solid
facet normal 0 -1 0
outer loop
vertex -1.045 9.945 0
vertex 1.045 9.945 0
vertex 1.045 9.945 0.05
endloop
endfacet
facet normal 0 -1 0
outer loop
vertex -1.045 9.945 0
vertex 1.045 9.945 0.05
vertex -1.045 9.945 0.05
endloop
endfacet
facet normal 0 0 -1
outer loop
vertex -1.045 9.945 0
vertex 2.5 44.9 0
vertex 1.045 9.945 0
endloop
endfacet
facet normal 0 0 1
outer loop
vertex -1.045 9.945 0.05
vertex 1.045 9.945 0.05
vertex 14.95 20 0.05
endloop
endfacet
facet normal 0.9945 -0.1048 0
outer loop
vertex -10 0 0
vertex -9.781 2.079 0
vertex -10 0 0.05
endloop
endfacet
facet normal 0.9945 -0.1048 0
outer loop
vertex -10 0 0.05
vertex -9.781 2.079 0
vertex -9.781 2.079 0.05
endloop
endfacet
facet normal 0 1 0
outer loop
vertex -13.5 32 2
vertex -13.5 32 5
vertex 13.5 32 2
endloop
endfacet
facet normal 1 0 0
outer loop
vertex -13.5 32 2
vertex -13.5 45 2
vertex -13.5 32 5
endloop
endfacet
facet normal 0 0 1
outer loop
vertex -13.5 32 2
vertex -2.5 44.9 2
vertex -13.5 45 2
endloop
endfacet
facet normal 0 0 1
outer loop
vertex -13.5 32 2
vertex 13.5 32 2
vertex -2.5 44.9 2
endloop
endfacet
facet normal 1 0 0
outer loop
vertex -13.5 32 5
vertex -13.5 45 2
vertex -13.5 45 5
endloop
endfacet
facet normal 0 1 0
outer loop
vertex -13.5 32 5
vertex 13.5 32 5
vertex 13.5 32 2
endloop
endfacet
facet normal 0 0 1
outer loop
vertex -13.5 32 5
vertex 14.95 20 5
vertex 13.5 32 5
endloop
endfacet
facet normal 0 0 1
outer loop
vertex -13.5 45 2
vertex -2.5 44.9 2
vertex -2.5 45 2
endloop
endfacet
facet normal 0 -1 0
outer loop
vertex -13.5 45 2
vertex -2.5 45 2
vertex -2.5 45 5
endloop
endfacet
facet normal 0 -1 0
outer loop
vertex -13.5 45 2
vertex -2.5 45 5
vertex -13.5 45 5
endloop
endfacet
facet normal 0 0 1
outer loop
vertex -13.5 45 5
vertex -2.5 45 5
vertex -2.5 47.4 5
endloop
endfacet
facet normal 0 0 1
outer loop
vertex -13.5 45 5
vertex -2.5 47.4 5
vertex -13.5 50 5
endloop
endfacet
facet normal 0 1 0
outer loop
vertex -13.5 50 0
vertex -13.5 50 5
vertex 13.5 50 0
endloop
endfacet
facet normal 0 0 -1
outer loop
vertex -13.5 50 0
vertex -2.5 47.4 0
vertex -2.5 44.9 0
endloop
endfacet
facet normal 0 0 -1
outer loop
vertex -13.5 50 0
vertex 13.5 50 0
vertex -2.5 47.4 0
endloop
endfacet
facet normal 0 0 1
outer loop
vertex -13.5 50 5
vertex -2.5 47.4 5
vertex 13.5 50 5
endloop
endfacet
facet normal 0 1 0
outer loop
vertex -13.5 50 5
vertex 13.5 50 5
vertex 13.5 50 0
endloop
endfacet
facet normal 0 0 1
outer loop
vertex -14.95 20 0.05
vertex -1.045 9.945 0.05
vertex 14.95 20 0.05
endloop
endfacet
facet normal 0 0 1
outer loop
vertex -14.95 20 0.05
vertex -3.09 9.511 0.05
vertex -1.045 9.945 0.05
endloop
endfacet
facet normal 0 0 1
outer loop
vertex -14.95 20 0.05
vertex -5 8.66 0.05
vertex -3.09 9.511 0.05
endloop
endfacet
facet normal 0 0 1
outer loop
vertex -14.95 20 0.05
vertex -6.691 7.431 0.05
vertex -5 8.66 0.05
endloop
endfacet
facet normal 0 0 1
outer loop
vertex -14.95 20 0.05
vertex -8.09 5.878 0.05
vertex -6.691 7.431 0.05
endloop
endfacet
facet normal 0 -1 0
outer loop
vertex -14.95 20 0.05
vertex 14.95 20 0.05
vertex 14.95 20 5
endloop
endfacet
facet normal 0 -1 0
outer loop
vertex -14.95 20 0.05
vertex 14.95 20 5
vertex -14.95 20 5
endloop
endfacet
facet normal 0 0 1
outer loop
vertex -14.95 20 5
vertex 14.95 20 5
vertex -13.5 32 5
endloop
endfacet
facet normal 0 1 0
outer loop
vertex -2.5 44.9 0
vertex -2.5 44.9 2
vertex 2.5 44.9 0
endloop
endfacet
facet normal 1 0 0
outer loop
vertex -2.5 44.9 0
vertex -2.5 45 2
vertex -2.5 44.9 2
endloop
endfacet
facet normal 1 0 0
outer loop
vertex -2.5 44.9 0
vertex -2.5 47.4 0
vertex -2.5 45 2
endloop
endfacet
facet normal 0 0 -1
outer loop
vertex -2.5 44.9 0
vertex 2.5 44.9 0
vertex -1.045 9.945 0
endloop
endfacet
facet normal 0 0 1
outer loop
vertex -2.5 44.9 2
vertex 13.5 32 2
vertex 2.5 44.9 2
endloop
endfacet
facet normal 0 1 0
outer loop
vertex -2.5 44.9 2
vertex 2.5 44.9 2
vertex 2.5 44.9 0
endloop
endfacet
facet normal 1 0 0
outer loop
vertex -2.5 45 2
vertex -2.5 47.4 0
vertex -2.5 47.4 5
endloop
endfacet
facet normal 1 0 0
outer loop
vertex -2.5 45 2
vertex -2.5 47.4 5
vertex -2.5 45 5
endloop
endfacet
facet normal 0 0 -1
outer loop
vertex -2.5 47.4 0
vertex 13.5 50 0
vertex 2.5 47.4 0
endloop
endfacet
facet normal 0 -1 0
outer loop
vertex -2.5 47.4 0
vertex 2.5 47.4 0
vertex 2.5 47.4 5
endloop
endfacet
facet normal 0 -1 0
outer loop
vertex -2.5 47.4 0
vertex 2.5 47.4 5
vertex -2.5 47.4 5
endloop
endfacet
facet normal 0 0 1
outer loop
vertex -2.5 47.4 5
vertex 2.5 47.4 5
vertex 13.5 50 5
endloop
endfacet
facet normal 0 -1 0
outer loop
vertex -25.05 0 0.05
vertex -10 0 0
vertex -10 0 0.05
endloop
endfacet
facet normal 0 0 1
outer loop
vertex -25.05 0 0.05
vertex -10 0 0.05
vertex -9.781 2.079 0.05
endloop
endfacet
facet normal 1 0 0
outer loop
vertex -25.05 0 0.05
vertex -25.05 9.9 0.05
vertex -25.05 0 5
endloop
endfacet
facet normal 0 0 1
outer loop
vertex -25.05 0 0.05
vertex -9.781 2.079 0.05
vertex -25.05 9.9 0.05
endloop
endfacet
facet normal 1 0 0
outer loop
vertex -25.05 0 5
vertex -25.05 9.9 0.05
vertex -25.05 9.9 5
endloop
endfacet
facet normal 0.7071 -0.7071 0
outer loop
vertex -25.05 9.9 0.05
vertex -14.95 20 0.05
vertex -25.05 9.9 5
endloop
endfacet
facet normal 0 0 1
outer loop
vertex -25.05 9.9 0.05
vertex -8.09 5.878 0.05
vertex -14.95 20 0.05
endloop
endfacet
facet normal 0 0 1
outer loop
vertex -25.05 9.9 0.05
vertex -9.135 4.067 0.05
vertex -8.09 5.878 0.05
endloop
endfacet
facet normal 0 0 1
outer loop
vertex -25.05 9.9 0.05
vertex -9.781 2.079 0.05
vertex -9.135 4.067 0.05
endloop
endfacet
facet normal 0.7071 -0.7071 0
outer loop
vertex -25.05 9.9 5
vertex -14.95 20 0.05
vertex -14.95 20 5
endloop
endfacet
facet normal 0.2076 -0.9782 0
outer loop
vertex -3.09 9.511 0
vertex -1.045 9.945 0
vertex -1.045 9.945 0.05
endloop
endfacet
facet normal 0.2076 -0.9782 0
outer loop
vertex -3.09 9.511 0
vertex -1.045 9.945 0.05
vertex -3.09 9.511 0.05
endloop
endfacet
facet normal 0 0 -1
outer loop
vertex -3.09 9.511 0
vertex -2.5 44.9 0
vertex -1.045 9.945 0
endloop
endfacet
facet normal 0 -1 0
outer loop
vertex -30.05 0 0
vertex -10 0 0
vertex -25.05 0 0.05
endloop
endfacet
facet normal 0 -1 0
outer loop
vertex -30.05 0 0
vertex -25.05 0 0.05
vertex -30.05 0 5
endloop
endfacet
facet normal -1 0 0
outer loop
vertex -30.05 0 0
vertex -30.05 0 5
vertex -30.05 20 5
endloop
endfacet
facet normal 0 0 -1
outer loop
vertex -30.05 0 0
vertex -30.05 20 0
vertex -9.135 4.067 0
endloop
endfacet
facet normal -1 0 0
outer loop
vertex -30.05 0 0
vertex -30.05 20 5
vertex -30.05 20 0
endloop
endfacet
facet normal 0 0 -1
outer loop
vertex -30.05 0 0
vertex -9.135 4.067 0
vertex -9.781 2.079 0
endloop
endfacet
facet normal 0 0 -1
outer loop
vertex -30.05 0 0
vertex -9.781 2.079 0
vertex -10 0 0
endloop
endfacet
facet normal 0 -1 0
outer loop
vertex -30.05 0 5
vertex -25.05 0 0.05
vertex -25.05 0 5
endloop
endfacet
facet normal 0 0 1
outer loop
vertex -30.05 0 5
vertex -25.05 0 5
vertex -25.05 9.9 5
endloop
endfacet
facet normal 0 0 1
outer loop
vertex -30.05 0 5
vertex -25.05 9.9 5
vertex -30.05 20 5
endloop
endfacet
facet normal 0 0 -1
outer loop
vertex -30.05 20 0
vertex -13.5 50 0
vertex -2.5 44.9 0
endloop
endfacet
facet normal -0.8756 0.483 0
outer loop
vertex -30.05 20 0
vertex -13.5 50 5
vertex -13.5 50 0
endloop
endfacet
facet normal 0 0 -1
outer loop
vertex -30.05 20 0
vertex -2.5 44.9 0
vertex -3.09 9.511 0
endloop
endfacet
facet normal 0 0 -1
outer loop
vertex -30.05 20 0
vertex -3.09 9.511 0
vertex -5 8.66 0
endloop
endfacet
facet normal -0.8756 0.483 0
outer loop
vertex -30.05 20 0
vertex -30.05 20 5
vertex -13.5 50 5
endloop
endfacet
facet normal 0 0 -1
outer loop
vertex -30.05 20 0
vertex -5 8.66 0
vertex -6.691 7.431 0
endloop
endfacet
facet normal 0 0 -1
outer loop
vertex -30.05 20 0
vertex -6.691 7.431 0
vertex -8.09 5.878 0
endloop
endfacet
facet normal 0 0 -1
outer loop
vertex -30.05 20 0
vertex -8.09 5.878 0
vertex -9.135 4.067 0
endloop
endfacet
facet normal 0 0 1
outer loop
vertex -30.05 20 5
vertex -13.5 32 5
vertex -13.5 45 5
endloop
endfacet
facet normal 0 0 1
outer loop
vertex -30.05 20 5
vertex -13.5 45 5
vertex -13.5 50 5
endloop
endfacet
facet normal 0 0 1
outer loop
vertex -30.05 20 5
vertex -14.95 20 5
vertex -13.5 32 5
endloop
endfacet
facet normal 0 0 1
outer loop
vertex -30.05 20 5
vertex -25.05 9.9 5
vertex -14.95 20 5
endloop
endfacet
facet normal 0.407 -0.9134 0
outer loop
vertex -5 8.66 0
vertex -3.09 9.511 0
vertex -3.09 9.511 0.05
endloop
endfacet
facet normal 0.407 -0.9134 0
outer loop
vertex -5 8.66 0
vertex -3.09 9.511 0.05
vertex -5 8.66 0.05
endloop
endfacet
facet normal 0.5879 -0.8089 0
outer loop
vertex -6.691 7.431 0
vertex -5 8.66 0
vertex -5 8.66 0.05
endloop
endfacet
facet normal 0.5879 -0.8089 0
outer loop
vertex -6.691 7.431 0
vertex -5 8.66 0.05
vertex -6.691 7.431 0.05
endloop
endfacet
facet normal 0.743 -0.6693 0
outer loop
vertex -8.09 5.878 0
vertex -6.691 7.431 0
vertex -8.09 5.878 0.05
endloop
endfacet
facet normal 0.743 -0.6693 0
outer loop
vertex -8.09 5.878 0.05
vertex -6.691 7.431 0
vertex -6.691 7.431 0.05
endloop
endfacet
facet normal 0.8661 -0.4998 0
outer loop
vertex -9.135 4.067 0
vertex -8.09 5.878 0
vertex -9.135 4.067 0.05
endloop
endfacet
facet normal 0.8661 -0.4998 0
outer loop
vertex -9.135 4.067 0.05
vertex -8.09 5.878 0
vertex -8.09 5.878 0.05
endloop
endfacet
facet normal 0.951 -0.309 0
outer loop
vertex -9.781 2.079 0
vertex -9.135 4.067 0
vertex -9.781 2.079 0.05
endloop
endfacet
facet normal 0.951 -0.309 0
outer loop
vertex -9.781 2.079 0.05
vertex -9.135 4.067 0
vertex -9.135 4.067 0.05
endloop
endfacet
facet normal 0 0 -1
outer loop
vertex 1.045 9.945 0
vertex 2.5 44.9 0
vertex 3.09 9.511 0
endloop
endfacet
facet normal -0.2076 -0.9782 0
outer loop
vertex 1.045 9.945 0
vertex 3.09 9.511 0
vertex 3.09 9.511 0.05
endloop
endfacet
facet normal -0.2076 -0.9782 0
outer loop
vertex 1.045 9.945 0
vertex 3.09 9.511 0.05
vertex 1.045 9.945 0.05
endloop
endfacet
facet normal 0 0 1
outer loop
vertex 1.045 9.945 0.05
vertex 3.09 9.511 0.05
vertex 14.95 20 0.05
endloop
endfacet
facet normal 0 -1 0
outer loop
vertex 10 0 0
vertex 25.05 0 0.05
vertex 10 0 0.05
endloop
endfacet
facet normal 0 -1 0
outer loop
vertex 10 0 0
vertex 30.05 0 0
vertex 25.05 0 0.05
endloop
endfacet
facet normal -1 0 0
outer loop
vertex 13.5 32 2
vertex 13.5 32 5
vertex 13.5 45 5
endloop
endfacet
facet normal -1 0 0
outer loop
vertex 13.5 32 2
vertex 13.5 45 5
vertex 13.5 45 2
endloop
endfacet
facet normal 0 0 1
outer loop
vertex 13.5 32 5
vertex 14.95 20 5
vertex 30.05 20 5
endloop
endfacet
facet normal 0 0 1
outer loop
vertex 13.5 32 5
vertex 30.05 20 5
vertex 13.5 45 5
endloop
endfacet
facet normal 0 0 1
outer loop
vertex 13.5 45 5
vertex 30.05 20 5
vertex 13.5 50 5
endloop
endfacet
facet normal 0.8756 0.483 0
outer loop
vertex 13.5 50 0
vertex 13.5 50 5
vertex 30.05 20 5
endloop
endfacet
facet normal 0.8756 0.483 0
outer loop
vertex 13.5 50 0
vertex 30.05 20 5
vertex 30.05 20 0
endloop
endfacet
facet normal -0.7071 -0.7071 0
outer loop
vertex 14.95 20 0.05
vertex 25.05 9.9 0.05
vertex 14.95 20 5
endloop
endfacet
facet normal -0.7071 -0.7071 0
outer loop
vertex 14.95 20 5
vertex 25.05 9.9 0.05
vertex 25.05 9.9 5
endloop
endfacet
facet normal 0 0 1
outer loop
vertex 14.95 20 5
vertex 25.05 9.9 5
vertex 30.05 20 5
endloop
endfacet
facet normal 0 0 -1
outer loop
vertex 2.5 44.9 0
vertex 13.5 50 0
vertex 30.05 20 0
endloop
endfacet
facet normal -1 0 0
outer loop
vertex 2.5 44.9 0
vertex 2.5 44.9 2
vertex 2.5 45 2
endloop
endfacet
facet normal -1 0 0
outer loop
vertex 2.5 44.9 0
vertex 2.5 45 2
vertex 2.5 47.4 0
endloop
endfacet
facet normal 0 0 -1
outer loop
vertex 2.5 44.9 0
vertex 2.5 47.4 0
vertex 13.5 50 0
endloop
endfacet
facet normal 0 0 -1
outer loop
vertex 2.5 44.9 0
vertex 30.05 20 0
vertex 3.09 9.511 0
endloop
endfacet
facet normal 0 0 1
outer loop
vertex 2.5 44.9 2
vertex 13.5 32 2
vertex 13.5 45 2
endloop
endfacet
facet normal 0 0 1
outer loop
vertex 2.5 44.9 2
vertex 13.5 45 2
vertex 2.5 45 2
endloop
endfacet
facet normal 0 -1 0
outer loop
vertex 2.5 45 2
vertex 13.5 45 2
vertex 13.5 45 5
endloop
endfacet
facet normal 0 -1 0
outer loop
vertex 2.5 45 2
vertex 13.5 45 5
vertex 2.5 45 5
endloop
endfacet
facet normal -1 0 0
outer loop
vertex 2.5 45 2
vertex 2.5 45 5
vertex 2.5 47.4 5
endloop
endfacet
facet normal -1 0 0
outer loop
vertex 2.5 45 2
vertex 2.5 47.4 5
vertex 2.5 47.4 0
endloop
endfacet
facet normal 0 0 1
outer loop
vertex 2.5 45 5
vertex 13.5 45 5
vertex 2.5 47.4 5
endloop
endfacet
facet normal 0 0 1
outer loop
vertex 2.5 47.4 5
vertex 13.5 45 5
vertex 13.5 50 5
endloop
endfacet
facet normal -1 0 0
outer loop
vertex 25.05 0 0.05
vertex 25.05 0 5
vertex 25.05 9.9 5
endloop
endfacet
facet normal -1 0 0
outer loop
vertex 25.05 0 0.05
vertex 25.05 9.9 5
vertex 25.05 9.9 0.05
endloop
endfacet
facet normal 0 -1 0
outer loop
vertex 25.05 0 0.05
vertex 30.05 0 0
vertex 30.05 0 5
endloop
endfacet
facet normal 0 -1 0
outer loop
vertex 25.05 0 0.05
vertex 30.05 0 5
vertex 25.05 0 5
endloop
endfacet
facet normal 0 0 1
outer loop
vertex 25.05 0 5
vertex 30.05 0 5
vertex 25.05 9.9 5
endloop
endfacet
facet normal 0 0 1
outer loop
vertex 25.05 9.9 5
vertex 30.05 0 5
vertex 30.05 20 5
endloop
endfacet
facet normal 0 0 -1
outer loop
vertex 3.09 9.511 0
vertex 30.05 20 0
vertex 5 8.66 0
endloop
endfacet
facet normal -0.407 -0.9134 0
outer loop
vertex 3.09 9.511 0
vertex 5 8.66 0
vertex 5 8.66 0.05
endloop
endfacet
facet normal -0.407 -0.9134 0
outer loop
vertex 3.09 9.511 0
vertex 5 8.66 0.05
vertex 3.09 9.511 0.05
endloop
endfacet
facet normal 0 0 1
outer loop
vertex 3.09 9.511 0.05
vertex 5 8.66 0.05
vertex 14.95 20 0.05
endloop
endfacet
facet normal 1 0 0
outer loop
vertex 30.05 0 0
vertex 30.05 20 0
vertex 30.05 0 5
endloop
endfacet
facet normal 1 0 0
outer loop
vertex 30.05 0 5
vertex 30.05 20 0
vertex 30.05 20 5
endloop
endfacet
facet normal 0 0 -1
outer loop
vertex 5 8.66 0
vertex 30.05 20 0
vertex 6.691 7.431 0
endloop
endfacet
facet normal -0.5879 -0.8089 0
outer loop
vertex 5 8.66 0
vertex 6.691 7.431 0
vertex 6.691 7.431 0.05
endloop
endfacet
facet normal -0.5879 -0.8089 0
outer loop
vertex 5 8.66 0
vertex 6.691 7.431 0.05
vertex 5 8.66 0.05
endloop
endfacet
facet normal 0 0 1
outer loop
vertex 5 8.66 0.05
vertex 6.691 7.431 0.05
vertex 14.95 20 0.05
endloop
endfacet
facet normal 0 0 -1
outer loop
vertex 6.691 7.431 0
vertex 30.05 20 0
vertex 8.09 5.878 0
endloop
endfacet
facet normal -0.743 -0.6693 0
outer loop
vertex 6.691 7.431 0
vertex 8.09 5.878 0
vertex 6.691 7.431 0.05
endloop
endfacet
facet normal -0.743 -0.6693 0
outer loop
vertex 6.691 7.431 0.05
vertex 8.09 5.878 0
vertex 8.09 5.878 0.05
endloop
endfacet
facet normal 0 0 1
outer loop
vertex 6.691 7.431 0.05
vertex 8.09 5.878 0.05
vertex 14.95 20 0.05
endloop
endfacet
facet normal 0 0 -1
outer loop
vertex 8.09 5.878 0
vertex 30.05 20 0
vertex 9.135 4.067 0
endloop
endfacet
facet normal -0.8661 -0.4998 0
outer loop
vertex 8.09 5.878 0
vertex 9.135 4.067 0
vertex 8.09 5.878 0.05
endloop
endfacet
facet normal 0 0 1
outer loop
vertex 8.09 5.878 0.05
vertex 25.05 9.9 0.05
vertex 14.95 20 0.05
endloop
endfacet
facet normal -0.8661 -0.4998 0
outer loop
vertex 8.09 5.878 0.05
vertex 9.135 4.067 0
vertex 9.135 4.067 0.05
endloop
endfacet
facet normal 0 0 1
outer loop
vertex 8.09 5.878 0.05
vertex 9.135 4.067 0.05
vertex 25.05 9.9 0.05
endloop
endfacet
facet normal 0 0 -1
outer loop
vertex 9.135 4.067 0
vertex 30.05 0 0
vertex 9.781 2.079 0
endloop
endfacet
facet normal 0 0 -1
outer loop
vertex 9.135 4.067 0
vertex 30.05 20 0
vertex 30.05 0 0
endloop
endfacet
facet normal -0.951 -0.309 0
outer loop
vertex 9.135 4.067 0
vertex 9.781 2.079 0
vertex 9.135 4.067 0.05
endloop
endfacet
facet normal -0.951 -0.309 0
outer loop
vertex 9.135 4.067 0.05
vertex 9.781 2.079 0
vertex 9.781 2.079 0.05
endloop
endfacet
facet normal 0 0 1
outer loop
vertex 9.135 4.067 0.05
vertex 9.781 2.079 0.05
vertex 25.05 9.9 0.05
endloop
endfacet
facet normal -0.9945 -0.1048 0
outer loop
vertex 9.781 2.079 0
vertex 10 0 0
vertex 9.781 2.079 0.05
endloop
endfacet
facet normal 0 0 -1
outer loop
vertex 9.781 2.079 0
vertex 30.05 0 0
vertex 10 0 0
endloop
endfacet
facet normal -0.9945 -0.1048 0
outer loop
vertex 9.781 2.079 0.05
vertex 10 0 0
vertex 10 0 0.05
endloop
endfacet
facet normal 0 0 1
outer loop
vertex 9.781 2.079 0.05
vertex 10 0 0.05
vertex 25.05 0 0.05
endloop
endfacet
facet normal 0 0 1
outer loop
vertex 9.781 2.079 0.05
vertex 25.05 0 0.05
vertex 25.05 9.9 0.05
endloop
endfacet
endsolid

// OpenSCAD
// file: ../Parameters.scad
//Main tube diameter - hole [mm]
main_tube_outer_diameter = 25.4;
main_tube_inner_diameter = 23.5;

//Tube for undercarriage - hole [mm]
tube_for_undercarriage_outer_diameter = 10.6;
tube_for_undercarriage_inner_diameter = 6;
global_clearance = 0.5;


//umístění podvozkových trubek

second_undercarriage_hole = main_tube_outer_diameter*2 + main_tube_outer_diameter/5 + main_tube_outer_diameter/2 + 170 + 160;

// Parameters of cube couplings
coupling_wall_thickness = main_tube_outer_diameter/5;  //width of coupling walls 
thickness_between_tubes = main_tube_outer_diameter/10;    // minimum distance between tubes in couplings

coupling_wall_thickness_undercarriage = tube_for_undercarriage_outer_diameter/3;
thickness_between_tubes_undercarriage = tube_for_undercarriage_outer_diameter/10;

//Screw diameter and nut for M4 [mm]
M4_screw_diameter=4.5;
Nut_height_M4 = 3.2;
Nut_diameter_M4 = 7.86;


//Screw diameter and nut for M3 [mm]
M3_screw_diameter = 3.2;
Nut_height_M3 = 1.7;	
Nut_diameter_M3 = 6.6; 


//The tube for help
Help_main_tube_outer = 25;
Help_main_tube_inner = 23; 
Help_tube_for_undercarriage_outer = 10;
Help_tube_for_undercarriage_inner = 5;


//main hull parameters

hull_drop_length = 580;
hull_wall_thickness = 0.8;
hull_y_size = 120;
hull_z_size = 150;
hull_x_size = 580;
hull_corner_radius = 4;
hull_airfoil_thickness= 35;  // thickness of drop generating airfoil in percent of lenght.
hull_scale_x = 1;
hull_scale_y = 1.5;
hull_scale_z = 1.5;

main_pilon_position = 170+68;
cover_pilon_position = 180;
height_of_vertical_tube = 275; //278mm je změřená délka trubky. 

ribbon_width = 5; // šířka vyztužovacích lemů. 

// šířka otvoru v přední části kapoty pro držák motoru.
width_of_engine_holder = 63;

//Top Cover Division - dělení horního krytu pro tisk
top_cover_division = [0, 50, 150, 280, 410, hull_x_size]; // upraveny seznam tak, aby deleni začinalo od nuly, což umožňí úplně automatické rozdělení.

//Bottom Cover Division - dělení dolního krytu pro tisk
bottom_cover_division = [0,100,250,365, 470, hull_x_size];
// zkrácená část pro payload pro testovací tisk
//bottom_cover_division = [0,200,250,365, 470, hull_x_size];

//Base Divison - dělení podložky
base_division = [0,140,280,410, hull_x_size];

//Cover pilon division - na výšku (v ose Z)
cover_pilon_division = [0,170,height_of_vertical_tube + main_tube_outer_diameter + coupling_wall_thickness];

//pozice šroubů
	//horní kryt
top_screw_position = [0, (top_cover_division[0] + top_cover_division[1])/4, (top_cover_division[2] - top_cover_division[1])/2 + top_cover_division[1], (top_cover_division[3] - top_cover_division[2])/2 + top_cover_division[2],(top_cover_division[4] - top_cover_division[3])/2 + top_cover_division[3],(top_cover_division[5] - top_cover_division[4])/2 + top_cover_division[4] - 20];
	//spodní kryt
bottom_screw_position = [0,(bottom_cover_division[0] + bottom_cover_division[1])/15 + 5, bottom_cover_division[1]/1.1, + bottom_cover_division[3], bottom_cover_division[3] + bottom_cover_division[1]/2, bottom_cover_division[4] - 6*global_clearance, bottom_cover_division[4] + bottom_cover_division[1]/2.5];




//šířka zámků
lock_width = 10;

//délka zámků
lock_length = 3;


//accumulator
//základní rozměry akumulátoru
width_of_accumulator = 129.4;//45+1;
depth_of_accumulator = 40.61;
height_of_accumulator = 43.65;
//Zapuštění akumulátoru
sink_of_accumulator = 5; //main_tube_outer_diameter/5 - Nut_height_M3*1.5;

//tloušťka hrany spojky
accumulator_holder_width = 18; 
accumulator_holder_thickness = 10; 

//posunutí akumálátoru na podložce
move_of_accumulator = 165;   // pozice akumulátoru (ovlivňuje těžiště)


////////////////
// Senzory
///////////////////

//opticalFlow
    width_optical_flow_senzor = 45.5;
    depth_optical_flow_senzor = 6;
    height_optical_flow_senzor = 35;
    sink_of_optical_flow_senzor = depth_optical_flow_senzor - 5; 
    M3_optical_flow_senzor_Z = 30.4;
    M3_optical_flow_senzor_X = 24;
    M3_optical_flow_senzor_Z_alone = 9.1;
    M3_optical_flow_senzor_X_alone = 16.7;
// main file
draft = true; 


module 888_1016(draft){

    plate_thickness = 5;
    plate_width = 50 + 0.1;
    plate_corners = 10 + 0.1;
    plate_length = 20; // vzdalenost, jak daleko bude drzak od okraje
    plate_axis_from_end = 20;

    hall_holder_wall_thickness = 5;
    hall_distance = 35; // distance between axis and magnet

    hall_length = 11+2;
    hall_length_offset = (11/2-2); // positiv is further from axis
    hall_width = 25+2;
    hall_thickness = 3;
    holder_length = plate_length + hall_distance - plate_axis_from_end + hall_length/2 + hall_holder_wall_thickness + hall_length_offset; 

    bottom_wall = 0.3;

    difference(){
        

    // zakladni tvar
        hull(){
            translate([-(plate_width + 2* hall_holder_wall_thickness)/2, 0, 0])
                cube([plate_width + 2* hall_holder_wall_thickness, plate_length, plate_thickness]);

            translate([-(hall_width)/2, 0, 0])
                cube([hall_width, holder_length, plate_thickness]);
        }

    // dira pro osu
        translate([0, plate_length - plate_axis_from_end,0])
            cylinder(d = 20, h = plate_thickness);


    // otvor pro senzor
        translate([-hall_width/2, plate_length + hall_distance - plate_axis_from_end - hall_length/2 + hall_length_offset, plate_thickness - hall_thickness])
            cube([hall_width, hall_length, hall_thickness + global_clearance]);

        translate([-5/2, plate_length + hall_distance - plate_axis_from_end + hall_length/2 + hall_length_offset - 0.1, 0])
            cube([5, 2.5, plate_thickness + global_clearance]);



        translate([0,0,-global_clearance/2 + bottom_wall])
            // tento rozdil napodobuje tvar hlinikove desky
            difference(){
                translate([-plate_width/2, 0, 0])
                    cube([plate_width, plate_length, plate_thickness + global_clearance]);

                translate([-plate_width/2, plate_length - plate_corners, -global_clearance/2])
                    rotate([0, 0, -45])
                        translate([-plate_corners*2, 0, 0])
                            cube([plate_corners*2, plate_corners*2, plate_thickness + global_clearance]);
                
                translate([plate_width/2 - plate_corners, plate_length, -global_clearance/2])
                    rotate([0, 0, -45])
                        translate([0, 0, 0])
                            cube([plate_corners*2, plate_corners*2, plate_thickness + global_clearance]);
            }
    }

}


888_1016(draft);

include <../Parameters.scad>
